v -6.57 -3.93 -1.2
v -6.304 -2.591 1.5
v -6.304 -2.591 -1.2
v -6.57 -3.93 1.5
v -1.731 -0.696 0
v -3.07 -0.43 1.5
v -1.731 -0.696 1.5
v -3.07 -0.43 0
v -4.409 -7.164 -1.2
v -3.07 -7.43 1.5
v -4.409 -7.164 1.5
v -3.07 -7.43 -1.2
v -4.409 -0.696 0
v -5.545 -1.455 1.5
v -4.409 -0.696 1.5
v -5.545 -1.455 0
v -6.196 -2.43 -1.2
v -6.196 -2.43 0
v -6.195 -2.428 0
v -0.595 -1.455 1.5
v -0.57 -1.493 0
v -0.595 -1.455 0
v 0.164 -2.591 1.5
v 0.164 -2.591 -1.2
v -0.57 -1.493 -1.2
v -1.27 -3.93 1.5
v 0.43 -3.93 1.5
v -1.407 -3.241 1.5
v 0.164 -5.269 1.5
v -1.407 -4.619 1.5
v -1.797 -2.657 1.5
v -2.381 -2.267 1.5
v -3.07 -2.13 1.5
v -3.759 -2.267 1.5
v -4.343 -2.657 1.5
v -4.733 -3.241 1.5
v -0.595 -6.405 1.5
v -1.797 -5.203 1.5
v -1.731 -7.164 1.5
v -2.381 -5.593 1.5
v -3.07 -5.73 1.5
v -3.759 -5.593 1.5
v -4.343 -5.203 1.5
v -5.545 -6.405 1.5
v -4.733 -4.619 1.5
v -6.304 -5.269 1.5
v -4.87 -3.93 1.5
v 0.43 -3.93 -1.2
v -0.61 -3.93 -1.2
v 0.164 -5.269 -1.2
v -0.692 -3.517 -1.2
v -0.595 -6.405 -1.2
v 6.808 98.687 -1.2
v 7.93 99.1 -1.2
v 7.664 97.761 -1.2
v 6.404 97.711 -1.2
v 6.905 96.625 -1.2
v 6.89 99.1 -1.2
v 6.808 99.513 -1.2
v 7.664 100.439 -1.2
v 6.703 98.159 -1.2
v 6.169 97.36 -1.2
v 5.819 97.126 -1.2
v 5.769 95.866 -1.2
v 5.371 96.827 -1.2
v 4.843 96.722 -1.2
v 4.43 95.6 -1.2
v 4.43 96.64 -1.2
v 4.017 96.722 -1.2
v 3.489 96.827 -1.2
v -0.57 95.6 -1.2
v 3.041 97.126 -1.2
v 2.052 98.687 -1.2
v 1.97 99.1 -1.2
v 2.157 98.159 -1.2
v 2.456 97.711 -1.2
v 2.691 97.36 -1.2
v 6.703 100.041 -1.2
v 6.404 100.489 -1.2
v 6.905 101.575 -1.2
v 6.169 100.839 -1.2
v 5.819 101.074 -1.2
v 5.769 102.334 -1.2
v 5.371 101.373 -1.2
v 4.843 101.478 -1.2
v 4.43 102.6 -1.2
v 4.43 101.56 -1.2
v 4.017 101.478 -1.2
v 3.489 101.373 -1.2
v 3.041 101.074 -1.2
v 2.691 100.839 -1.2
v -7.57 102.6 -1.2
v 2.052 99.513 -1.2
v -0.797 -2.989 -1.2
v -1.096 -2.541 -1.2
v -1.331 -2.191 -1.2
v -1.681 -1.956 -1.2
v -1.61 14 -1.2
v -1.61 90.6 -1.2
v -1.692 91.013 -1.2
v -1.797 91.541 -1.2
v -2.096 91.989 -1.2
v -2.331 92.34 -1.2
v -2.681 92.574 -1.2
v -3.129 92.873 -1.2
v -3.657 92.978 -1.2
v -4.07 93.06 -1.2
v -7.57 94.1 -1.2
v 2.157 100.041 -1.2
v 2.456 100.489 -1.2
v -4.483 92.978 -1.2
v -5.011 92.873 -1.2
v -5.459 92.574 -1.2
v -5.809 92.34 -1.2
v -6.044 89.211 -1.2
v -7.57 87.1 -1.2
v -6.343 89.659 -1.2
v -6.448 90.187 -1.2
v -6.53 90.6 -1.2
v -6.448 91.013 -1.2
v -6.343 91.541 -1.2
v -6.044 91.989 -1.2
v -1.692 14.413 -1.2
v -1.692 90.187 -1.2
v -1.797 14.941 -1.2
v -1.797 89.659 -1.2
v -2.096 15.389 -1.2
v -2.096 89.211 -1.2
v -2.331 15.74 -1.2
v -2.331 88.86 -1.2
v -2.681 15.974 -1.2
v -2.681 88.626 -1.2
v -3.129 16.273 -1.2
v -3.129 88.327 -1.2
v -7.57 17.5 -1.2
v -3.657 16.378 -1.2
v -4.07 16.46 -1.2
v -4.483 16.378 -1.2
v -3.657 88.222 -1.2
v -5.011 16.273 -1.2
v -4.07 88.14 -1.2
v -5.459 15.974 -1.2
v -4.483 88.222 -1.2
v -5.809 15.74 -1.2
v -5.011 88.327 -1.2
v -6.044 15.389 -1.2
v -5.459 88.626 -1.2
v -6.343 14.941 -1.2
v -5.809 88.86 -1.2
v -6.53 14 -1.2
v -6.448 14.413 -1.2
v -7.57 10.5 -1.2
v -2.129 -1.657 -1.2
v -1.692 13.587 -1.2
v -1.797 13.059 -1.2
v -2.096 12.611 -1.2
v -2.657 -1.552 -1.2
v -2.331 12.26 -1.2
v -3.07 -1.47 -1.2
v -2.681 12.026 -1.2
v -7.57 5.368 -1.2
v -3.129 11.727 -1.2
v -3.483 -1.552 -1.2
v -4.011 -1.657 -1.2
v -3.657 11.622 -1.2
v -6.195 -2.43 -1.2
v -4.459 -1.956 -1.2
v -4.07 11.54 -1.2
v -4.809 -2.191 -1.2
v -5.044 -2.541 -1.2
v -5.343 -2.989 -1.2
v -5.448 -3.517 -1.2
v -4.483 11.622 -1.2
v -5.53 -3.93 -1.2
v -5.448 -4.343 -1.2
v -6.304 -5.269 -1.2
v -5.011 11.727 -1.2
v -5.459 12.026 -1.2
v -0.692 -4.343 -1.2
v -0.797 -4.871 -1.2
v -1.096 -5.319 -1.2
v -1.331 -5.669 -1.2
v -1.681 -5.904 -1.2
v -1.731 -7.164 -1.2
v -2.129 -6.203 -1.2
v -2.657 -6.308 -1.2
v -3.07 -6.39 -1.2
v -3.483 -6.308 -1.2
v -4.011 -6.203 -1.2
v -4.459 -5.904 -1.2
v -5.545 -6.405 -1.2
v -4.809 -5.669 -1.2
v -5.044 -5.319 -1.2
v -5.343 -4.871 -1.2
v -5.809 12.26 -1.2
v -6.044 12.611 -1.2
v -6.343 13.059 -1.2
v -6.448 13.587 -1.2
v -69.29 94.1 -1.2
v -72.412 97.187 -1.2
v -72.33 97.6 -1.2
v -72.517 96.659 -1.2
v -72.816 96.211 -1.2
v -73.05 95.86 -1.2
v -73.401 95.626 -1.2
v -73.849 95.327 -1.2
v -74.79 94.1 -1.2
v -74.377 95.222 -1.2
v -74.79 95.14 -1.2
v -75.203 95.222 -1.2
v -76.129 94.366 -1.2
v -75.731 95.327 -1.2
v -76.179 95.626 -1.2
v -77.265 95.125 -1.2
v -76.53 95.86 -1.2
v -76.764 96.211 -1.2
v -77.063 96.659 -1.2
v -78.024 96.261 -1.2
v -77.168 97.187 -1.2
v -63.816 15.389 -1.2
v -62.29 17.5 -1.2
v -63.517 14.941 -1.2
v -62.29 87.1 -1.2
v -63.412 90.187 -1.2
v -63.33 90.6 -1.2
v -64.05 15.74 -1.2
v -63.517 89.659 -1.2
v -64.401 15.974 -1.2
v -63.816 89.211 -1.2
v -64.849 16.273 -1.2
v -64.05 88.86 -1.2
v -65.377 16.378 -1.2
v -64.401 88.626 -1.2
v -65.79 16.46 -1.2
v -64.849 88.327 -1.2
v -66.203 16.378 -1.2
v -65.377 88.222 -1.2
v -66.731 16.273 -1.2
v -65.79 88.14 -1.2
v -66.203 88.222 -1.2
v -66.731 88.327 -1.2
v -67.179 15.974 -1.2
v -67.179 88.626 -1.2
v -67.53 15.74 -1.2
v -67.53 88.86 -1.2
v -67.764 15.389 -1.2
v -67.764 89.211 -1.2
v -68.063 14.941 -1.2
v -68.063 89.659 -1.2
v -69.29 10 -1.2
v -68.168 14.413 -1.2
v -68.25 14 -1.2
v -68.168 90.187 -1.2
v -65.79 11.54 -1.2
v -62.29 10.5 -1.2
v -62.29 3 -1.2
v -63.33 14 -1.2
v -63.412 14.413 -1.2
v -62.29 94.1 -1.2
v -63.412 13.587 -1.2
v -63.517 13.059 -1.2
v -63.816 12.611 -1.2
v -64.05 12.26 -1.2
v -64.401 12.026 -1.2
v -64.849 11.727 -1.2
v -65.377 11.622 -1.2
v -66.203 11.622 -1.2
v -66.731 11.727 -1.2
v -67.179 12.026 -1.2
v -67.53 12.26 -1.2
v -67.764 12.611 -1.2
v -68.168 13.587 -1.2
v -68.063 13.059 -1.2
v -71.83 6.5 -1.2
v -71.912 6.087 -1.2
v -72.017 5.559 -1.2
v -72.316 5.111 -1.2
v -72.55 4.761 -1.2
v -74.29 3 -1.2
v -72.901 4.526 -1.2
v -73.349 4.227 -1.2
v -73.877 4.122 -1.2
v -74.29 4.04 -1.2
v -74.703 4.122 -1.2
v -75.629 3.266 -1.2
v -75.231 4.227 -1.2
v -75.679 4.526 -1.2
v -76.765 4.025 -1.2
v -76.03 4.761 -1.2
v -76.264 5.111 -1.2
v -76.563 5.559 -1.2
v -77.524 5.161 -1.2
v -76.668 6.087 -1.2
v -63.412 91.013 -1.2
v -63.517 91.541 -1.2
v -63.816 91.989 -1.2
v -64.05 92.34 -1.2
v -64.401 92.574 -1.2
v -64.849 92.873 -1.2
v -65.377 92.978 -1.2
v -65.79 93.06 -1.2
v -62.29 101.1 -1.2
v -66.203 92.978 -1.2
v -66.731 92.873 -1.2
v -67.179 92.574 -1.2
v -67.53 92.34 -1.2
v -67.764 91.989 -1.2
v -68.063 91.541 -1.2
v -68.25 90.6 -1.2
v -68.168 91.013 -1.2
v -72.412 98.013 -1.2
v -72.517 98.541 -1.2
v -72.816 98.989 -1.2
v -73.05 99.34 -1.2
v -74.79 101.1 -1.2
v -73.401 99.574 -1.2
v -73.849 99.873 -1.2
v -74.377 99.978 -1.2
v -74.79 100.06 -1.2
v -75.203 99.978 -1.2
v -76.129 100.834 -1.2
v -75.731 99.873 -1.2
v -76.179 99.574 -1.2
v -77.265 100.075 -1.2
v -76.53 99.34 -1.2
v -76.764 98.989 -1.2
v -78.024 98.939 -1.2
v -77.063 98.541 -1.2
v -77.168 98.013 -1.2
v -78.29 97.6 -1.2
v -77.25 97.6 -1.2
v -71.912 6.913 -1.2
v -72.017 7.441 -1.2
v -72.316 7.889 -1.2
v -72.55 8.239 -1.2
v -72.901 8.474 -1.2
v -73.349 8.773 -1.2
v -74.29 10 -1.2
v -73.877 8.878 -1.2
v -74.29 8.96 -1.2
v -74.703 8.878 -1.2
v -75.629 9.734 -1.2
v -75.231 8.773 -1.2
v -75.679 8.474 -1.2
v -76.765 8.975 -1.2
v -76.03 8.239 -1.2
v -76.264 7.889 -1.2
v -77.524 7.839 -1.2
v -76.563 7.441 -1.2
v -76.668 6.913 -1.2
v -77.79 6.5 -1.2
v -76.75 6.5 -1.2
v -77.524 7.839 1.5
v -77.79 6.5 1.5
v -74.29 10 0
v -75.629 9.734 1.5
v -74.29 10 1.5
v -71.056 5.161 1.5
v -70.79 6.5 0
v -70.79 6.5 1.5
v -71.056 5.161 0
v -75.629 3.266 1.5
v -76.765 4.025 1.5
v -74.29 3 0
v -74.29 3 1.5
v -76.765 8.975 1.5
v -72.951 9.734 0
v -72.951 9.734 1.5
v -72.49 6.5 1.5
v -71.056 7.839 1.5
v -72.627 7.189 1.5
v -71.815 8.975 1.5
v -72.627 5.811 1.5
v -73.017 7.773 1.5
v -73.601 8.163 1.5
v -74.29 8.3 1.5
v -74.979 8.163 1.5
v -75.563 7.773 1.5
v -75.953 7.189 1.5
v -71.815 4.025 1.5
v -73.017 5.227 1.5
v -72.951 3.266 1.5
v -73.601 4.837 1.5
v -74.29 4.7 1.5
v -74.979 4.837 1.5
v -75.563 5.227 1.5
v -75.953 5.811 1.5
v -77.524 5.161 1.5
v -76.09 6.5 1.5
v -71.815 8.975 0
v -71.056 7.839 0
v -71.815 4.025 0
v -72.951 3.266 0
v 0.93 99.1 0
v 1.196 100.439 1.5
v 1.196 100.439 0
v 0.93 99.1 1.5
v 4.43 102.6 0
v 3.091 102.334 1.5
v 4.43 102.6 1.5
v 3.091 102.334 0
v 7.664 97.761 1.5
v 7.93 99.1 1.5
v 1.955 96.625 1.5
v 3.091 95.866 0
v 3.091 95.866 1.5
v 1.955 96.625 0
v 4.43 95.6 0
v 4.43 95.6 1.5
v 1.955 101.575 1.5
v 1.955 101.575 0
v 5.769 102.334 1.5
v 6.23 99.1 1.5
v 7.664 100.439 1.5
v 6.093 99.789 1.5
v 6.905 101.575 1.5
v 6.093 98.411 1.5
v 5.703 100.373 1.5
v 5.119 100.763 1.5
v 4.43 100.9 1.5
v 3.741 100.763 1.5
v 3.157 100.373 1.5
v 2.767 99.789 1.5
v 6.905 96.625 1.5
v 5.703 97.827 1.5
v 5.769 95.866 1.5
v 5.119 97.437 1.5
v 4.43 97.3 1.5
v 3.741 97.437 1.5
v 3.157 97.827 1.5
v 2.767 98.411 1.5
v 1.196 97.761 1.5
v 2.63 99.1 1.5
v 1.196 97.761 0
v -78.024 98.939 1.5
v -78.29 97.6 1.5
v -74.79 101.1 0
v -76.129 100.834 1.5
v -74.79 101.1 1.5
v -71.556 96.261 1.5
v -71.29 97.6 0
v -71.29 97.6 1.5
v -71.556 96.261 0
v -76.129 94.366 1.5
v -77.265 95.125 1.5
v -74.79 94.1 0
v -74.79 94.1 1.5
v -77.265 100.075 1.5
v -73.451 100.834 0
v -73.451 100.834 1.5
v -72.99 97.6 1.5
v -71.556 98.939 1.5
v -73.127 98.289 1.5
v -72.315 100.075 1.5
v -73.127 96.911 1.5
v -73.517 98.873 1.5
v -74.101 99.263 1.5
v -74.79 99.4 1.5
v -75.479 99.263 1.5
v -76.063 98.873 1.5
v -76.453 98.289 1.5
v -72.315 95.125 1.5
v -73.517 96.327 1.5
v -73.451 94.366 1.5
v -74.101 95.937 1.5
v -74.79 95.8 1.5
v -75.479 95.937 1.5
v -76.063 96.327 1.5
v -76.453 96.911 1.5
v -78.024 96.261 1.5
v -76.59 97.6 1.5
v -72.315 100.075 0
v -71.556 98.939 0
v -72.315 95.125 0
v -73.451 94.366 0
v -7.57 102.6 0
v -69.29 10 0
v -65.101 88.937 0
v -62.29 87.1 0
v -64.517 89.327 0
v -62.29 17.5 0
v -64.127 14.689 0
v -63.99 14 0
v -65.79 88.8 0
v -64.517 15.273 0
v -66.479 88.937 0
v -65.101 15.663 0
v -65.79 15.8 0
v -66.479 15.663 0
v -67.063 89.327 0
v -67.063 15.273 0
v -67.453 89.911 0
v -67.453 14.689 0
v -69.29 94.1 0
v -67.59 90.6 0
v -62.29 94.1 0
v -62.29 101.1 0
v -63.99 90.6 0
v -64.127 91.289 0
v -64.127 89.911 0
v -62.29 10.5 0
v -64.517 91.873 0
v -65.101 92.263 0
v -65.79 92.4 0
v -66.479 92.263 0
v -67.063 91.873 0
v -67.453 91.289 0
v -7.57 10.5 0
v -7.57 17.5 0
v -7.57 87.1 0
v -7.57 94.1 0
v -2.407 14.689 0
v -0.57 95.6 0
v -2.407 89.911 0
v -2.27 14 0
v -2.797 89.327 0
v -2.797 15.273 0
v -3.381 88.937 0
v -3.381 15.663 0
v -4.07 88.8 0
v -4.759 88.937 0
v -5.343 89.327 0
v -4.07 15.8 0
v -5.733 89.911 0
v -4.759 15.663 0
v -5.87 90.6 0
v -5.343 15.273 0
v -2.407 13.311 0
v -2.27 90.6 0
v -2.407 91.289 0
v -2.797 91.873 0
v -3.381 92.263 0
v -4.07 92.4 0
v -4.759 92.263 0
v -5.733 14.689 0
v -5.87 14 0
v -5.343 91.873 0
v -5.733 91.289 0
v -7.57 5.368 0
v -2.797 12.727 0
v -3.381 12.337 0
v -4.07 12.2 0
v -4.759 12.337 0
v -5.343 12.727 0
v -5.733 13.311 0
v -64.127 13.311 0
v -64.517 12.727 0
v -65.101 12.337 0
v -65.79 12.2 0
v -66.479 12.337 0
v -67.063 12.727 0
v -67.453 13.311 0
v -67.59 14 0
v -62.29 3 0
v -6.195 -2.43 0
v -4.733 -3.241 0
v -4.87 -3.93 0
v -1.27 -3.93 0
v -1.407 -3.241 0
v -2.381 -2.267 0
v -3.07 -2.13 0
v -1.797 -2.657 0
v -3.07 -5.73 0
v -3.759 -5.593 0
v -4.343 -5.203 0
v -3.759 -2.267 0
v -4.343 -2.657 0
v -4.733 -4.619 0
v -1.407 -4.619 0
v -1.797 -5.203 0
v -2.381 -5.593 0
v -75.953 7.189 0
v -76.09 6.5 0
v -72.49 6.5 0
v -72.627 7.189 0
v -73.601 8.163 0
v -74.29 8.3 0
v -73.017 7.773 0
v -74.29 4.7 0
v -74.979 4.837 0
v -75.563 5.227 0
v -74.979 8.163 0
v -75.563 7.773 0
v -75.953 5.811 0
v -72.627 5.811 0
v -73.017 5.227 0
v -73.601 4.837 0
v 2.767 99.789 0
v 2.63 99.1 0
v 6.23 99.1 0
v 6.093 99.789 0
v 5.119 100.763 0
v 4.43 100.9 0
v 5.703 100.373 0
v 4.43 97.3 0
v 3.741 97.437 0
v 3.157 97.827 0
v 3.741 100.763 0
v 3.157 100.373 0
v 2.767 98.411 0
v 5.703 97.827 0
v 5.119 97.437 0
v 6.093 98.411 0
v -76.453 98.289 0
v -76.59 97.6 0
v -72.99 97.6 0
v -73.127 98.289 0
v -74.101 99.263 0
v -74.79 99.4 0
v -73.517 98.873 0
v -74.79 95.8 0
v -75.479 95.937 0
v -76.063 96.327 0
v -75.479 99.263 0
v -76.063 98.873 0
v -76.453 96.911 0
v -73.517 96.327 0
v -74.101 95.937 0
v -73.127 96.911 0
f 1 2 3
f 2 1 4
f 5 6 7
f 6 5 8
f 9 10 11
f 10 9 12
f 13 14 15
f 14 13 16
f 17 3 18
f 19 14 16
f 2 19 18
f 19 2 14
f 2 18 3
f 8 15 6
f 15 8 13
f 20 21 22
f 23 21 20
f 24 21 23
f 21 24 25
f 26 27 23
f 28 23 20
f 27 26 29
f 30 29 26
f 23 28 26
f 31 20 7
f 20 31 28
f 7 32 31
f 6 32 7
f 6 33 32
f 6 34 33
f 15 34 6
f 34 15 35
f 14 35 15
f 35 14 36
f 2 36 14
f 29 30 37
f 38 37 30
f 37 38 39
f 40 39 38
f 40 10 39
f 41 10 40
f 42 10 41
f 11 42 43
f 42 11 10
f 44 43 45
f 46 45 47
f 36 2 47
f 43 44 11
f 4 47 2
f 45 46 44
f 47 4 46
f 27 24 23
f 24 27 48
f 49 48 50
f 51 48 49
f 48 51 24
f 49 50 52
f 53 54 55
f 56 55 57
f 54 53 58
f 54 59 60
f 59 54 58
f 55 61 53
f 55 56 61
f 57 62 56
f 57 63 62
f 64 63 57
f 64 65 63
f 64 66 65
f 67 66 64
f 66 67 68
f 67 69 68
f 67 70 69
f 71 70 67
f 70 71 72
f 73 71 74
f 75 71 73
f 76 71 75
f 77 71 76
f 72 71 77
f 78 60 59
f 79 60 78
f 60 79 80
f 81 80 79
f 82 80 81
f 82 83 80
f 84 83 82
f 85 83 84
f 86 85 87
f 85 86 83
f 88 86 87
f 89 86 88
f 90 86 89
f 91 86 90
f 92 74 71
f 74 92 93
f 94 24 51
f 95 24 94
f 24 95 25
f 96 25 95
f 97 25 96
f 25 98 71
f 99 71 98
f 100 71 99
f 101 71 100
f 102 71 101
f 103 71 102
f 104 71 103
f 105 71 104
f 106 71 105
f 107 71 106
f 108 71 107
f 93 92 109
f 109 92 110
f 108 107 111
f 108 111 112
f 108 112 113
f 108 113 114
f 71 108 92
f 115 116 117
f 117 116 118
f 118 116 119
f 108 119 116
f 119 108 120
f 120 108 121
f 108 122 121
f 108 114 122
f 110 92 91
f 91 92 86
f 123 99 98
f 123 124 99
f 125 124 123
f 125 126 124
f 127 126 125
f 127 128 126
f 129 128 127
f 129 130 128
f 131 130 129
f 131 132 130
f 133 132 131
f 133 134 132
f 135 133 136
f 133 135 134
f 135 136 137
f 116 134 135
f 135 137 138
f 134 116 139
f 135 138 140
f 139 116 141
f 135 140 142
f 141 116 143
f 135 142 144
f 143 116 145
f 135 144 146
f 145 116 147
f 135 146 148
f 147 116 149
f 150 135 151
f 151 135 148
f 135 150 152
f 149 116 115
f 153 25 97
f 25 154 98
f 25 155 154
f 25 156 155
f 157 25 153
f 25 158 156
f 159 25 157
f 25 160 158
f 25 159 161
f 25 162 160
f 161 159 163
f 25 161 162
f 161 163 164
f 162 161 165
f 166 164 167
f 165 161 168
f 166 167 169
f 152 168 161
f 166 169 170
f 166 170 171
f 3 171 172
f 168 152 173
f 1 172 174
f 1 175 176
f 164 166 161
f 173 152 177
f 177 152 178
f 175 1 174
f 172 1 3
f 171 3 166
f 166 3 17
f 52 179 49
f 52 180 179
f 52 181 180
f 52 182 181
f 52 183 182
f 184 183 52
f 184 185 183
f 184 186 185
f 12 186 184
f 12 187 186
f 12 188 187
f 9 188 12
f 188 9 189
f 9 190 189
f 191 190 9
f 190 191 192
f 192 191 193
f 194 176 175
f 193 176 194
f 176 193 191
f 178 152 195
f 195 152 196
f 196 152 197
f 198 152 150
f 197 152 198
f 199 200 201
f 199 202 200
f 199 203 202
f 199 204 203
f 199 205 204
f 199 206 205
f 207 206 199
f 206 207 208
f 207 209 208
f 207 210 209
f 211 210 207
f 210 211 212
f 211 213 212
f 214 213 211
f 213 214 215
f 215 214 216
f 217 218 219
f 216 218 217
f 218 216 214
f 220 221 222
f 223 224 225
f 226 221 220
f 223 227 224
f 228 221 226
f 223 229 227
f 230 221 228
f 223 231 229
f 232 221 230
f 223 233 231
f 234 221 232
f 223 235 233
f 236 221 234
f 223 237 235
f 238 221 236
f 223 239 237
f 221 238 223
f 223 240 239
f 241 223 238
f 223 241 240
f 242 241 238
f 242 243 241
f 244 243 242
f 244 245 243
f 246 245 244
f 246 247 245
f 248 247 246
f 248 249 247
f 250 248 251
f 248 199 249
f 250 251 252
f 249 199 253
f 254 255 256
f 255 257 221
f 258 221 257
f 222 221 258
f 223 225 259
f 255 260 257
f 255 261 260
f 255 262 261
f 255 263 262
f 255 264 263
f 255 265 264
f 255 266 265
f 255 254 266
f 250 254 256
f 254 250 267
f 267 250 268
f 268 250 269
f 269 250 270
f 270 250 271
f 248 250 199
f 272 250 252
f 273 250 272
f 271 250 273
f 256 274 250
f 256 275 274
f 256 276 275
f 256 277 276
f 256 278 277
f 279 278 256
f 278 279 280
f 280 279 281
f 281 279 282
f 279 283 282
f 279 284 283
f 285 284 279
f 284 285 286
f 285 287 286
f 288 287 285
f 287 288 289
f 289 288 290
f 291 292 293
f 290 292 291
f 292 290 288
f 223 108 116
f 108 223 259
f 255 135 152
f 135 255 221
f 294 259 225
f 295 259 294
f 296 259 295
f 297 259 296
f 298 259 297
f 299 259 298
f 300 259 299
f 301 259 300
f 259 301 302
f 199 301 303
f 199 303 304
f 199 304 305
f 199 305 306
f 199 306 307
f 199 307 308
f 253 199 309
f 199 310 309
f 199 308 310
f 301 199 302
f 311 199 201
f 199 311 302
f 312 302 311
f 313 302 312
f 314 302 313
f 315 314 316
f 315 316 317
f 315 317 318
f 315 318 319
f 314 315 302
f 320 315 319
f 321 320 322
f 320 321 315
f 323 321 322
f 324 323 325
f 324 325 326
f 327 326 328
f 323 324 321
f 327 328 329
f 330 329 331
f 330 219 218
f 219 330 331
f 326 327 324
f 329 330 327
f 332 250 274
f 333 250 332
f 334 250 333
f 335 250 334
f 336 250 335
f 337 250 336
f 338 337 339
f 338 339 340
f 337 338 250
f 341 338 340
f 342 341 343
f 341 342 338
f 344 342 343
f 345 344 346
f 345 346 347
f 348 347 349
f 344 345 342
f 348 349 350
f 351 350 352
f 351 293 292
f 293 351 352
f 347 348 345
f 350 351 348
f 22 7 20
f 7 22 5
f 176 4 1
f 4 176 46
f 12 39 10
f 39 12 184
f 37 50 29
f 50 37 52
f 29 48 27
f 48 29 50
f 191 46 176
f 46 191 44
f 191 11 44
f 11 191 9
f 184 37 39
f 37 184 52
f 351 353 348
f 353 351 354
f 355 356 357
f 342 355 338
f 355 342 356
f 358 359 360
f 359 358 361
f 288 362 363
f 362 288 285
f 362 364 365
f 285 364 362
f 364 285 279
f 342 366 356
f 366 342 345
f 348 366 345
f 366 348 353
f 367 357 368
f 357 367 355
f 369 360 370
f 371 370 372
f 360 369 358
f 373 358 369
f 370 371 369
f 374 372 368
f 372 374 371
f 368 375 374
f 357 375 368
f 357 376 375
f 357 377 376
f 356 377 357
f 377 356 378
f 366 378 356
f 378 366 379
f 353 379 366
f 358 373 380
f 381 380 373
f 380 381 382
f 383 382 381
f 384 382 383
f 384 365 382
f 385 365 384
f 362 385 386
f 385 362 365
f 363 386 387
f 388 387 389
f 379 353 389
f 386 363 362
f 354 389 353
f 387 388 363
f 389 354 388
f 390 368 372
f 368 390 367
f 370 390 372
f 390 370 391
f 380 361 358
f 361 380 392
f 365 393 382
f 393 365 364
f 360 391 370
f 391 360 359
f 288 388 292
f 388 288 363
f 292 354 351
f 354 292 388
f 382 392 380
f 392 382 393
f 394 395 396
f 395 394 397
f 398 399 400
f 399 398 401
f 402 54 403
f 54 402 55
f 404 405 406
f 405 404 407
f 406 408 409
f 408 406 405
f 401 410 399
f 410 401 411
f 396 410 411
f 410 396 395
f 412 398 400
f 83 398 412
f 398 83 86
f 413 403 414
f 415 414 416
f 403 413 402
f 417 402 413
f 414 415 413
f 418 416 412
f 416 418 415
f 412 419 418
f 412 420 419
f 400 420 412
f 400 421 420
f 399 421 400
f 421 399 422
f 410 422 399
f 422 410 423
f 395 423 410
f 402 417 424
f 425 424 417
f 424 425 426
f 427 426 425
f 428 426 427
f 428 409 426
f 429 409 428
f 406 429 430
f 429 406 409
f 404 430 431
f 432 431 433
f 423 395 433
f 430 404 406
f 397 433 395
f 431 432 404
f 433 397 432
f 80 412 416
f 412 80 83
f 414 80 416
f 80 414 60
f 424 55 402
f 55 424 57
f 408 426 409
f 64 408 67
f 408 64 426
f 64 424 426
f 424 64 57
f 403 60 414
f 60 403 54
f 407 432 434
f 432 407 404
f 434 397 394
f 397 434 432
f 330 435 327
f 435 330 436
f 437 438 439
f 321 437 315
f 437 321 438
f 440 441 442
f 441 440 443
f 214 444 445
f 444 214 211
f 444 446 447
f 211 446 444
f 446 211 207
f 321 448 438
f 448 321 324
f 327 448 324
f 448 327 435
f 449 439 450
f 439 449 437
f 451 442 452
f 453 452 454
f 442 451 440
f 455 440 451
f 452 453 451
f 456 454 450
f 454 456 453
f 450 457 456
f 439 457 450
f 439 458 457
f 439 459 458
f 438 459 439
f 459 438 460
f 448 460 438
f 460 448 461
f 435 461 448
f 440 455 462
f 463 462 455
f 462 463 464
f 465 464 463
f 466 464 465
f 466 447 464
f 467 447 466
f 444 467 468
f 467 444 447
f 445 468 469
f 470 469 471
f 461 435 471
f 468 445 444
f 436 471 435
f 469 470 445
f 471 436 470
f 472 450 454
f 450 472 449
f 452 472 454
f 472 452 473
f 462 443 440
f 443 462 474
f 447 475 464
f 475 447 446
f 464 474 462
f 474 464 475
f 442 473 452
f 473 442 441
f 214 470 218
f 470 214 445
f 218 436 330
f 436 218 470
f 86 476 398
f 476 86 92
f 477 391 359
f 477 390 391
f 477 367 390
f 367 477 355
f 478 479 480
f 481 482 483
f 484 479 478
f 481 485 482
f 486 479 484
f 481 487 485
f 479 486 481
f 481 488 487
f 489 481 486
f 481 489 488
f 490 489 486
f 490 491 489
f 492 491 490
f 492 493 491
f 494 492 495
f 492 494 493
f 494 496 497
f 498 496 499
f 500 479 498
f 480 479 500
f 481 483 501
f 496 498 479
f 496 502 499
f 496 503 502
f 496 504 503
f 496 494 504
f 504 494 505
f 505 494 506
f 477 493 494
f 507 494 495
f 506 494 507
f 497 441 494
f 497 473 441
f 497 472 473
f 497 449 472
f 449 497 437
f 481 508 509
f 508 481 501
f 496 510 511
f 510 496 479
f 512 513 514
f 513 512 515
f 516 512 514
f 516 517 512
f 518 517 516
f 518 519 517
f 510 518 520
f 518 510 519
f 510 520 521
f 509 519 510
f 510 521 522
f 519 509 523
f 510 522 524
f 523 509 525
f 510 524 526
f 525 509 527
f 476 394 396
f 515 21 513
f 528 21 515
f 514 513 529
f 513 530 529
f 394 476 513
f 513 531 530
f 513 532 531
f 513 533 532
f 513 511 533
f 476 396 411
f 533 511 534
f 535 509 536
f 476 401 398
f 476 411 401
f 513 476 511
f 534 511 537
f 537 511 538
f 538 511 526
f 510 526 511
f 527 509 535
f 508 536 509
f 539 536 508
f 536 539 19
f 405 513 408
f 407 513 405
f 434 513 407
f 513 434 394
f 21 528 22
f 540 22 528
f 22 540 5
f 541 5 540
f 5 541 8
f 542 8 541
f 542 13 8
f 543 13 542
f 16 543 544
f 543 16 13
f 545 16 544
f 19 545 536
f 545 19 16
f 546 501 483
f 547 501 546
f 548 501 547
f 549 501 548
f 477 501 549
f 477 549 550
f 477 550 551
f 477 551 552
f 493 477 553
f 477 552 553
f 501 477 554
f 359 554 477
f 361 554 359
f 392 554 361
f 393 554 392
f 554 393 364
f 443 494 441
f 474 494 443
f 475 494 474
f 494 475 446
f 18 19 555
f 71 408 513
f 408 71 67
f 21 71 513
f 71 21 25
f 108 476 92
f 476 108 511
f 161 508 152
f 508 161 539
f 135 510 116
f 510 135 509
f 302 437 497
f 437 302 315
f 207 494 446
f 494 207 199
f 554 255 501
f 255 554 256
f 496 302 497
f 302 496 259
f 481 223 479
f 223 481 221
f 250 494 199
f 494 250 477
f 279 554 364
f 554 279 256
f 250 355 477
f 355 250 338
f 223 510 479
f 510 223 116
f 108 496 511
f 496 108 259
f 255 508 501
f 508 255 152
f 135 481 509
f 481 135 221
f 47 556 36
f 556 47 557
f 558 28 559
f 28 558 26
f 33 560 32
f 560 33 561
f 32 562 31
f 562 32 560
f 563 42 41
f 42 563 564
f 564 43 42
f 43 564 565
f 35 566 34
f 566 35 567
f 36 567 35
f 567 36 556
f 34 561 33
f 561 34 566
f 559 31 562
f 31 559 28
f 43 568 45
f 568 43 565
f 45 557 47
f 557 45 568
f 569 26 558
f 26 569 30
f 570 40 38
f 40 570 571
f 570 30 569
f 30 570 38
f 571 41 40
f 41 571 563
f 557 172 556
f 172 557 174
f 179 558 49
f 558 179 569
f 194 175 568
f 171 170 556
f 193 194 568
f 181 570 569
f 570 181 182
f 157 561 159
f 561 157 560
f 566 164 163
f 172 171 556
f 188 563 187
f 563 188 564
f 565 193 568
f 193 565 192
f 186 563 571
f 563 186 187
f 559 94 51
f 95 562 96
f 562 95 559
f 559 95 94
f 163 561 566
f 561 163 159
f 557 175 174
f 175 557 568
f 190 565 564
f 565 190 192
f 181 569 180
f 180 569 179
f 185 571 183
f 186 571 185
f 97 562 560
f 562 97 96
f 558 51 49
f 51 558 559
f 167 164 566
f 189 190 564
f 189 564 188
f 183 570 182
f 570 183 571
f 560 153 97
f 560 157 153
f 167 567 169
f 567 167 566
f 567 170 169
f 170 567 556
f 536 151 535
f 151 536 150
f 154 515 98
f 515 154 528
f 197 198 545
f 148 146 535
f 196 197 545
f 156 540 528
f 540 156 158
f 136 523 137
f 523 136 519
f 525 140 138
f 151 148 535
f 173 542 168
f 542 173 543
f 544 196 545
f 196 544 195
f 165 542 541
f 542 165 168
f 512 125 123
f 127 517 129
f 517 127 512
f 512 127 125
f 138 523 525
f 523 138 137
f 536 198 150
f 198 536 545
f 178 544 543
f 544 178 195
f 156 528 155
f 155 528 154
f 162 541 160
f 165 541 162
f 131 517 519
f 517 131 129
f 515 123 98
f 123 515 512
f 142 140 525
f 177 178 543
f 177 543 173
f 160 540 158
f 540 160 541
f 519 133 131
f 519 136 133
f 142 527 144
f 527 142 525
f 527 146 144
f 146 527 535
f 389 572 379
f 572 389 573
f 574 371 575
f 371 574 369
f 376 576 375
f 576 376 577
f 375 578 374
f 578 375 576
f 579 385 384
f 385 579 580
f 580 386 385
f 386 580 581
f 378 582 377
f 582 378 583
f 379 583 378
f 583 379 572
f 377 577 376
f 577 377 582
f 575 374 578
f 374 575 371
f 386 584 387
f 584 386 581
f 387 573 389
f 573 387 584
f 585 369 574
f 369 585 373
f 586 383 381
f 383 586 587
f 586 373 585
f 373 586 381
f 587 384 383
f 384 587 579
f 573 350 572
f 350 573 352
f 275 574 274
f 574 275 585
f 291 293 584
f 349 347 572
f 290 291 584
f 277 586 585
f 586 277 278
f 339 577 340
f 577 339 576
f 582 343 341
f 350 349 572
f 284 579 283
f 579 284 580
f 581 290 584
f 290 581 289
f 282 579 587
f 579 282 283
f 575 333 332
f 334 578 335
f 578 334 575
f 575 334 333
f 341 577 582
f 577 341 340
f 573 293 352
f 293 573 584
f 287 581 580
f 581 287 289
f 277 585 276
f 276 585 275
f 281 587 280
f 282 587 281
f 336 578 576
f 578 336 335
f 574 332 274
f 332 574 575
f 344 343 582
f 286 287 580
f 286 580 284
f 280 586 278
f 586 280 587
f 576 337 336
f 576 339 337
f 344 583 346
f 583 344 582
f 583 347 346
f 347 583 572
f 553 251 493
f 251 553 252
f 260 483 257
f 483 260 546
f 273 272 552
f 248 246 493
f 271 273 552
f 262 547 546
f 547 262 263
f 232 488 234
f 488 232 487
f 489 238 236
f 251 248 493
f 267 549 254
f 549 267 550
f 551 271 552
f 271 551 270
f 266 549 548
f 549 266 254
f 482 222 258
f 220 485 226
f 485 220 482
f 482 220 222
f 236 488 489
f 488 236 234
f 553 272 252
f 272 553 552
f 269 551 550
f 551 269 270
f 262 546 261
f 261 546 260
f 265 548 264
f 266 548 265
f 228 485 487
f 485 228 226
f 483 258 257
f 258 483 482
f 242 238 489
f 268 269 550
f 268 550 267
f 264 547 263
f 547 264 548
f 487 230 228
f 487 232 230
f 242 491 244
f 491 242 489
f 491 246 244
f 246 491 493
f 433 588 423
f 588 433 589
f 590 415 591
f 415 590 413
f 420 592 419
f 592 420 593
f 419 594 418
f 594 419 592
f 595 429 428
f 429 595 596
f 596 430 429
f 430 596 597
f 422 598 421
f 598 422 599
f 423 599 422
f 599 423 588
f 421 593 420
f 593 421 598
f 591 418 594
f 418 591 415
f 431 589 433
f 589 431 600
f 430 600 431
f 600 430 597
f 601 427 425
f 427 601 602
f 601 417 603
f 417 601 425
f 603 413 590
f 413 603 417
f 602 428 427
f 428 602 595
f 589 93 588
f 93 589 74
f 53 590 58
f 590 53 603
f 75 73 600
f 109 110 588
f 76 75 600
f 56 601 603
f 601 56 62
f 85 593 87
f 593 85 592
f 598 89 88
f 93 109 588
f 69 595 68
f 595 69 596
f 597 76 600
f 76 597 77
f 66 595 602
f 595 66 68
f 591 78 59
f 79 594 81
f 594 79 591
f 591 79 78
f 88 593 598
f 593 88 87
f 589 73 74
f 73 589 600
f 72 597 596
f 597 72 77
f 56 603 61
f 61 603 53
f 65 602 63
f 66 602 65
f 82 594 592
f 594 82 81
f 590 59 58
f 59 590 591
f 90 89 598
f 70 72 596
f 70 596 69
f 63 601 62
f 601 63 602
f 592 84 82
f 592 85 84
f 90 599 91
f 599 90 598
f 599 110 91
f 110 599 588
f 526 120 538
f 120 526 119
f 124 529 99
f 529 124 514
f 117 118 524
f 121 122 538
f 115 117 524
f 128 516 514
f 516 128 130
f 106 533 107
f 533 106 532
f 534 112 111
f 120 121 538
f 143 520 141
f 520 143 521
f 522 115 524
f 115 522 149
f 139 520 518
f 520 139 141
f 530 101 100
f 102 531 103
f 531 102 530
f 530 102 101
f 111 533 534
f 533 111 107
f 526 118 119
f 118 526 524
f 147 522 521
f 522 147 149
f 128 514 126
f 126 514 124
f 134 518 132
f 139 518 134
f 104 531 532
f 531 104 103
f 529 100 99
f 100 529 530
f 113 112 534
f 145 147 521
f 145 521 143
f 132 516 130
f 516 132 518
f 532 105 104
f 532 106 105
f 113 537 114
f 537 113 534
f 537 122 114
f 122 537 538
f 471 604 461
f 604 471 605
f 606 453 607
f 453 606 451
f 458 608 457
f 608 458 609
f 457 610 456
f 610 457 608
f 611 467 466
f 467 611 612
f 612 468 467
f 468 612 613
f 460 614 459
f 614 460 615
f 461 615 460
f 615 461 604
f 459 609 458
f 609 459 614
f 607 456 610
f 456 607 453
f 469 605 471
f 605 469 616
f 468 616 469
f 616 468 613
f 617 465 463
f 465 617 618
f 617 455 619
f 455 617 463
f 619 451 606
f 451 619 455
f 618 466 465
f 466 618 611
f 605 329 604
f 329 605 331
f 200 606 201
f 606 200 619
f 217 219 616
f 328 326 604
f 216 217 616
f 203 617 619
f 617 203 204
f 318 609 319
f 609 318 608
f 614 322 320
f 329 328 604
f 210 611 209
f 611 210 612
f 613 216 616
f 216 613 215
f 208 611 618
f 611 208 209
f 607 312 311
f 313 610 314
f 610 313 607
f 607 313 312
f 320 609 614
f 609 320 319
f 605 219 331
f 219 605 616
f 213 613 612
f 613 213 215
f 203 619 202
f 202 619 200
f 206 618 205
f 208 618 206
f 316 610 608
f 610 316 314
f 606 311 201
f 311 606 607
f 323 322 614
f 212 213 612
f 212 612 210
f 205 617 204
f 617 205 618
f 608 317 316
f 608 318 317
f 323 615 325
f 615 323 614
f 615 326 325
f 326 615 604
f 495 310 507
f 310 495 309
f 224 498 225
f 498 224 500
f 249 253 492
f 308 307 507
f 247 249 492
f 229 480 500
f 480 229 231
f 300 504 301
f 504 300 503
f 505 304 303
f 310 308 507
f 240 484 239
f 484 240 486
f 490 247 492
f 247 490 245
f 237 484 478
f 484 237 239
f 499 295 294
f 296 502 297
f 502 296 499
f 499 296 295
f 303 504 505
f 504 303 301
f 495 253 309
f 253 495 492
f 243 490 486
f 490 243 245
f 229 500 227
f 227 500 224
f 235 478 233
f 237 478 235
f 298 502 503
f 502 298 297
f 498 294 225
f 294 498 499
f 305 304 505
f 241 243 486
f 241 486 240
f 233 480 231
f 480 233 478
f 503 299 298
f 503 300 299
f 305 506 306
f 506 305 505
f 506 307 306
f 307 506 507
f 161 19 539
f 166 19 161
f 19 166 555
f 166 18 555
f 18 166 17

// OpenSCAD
//
// Dell E5430v Laptop Drive Bracket by Russ Hughes (russ@owt.com)
// Aug 26, 2017
// Creative Commons - Attribution
//

$fn = 16;
thick = 0.2*6;
width = 7;
half_width = width / 2;
height = 1.5;
ll = 0;
lr = 1;
ul = 2;
ur = 3;

x = 0;
y = 1;

case = [
	[3.07, -3.93],	// ll
	[74.29, 6.5],	// lr
	[-4.43, 99.1],	// ul
	[74.79, 97.6]	// ur
];

drive = [
	[4.07, 14],			// ll
	[65.79, 14],		// lr
	[4.07, 90.6],		// ul
	[65.79, 90.6]		// ur
];

module hole() {
	cylinder(d=3.6, h=thick+3);
}

module frame() {
	// upper left case tab
	translate([case[ul][x], case[ul][y] - half_width , 0]) 
		cube([drive[ul][x] + abs(case[ul][x]), width, thick]);
		
	// left vertical 
	llen = 	case[ul][y] + abs(case[ll][y])+width-5;
	translate([drive[ul][x] - half_width, case[ul][y] - llen + half_width, 0])
		cube([width, llen, thick]);

	// upper right case tab

	translate([drive[ur][x], case[ur][y] - half_width, 0])
		cube([case[ur][x] - drive[ur][x], width, thick]);

	// right verticle
	rlen = case[ur][y] - case[lr][y] + width;
	translate([drive[ur][x] - half_width, case[ur][y] - rlen + half_width, 0])
		cube([width, rlen, thick]);

	// lower right case tab

	translate([drive[lr][x]-half_width, case[lr][y]-half_width, 0])
		cube([case[lr][x] - drive[lr][x]+half_width, width, thick]);

	// upper  horizontal
	translate([drive[ul][x], drive[ul][y]-half_width, 0])
		cube([drive[ur][x] - drive[ul][x], width, thick]); 

	// lower horizontal
	translate([drive[ll][x], drive[ll][y]-half_width, 0])
		cube([drive[lr][x] - drive[ll][x], width, thick]); 

	// rounded end standoffs 
	for (i = [0 : 3]) {
		translate([case[i][x],case[i][y], -height])
			cylinder(d=7, h=thick+height);
	}
}

module holes() {
	for (i = [0 : 3]) {
		
		// case holes
		translate([case[i][x],case[i][y], -height]) {
			hole();
			translate([0,0,height])
				cylinder(d2=6.5+0.4, d1=3.6, h=3);
		}
		
		// drive holes
		translate([drive[i][x],drive[i][y], -height]) {
			hole();
			translate([0,0,height])
				cylinder(d2=6.5+0.4, d1=3.6, h=3);
		}
	}
	
	translate([case[ll][x]+3.125,case[ll][y]+1.5, 0])
	rotate([0,0,-10])
		cube([1.5,8,thick]);	
}

rotate([0,180,0]) {
	difference() {
		frame();
		holes();
	}
}
